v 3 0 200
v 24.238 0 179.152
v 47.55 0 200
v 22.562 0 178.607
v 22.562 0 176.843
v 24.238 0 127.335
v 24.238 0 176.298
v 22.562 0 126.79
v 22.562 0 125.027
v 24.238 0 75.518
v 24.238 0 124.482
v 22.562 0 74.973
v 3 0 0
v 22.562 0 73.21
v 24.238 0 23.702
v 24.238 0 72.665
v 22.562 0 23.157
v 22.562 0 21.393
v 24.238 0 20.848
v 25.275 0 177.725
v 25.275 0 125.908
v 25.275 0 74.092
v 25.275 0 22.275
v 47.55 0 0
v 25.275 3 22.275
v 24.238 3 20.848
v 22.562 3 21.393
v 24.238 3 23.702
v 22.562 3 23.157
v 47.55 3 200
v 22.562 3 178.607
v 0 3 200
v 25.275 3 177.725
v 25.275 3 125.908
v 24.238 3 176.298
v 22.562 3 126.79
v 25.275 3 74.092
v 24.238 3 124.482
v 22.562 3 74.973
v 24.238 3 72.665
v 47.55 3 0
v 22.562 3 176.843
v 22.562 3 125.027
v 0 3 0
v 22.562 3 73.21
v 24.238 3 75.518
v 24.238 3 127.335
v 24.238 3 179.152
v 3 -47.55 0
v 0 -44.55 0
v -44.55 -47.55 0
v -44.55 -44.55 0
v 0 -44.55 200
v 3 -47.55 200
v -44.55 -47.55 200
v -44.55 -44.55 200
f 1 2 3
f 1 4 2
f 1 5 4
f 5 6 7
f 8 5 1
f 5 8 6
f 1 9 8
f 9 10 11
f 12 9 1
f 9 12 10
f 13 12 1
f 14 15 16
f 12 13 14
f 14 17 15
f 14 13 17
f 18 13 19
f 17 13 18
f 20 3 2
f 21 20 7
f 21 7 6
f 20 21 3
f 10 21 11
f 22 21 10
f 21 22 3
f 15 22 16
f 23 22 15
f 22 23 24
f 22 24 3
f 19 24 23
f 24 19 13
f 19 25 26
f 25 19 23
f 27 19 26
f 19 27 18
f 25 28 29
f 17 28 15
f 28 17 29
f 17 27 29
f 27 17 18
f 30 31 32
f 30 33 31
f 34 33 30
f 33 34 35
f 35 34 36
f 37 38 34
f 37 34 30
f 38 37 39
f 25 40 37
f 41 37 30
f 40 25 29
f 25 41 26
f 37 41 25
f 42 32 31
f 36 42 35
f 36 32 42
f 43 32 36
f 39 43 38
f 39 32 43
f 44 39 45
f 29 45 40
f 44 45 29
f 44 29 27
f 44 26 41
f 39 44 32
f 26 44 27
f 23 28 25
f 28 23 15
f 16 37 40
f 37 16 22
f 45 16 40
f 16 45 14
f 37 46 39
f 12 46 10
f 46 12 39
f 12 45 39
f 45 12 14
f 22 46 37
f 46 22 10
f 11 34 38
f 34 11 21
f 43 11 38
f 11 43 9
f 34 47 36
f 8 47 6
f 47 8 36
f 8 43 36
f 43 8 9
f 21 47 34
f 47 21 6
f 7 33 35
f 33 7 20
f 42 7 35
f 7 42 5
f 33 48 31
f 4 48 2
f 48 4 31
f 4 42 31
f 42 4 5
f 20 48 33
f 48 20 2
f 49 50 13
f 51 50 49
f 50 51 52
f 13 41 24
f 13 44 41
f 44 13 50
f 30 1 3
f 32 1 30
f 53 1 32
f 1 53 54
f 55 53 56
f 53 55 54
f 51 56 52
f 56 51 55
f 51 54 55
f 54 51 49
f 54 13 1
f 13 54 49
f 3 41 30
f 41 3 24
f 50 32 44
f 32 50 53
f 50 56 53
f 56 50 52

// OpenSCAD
u = 44.55;
thickness = 3;
height = 200;
m3 = 3 / 2;
edge = u / 2;
nr_of_holes = 4;
spacing = (height - edge - edge) / (nr_of_holes - 1);

difference()
{
    linear_extrude(height)
    {
        translate([-u, -u - thickness, 0])
        {
            square([u + thickness, thickness]);
        }
        
        translate([0, -u, 0])
        {
             square([thickness, u]);
        }
        
        translate([0, 0, 0])
        {
            square([u + thickness, thickness]);
        }
    }
    
    // Screw-holes.
    for (y =[edge:spacing:height - edge]) 
    translate([(u + thickness) / 2, 0, y])
    {
        rotate([-90, 0, 0])
        {
            cylinder(r = m3, h = thickness);
        }
    }
    
}
